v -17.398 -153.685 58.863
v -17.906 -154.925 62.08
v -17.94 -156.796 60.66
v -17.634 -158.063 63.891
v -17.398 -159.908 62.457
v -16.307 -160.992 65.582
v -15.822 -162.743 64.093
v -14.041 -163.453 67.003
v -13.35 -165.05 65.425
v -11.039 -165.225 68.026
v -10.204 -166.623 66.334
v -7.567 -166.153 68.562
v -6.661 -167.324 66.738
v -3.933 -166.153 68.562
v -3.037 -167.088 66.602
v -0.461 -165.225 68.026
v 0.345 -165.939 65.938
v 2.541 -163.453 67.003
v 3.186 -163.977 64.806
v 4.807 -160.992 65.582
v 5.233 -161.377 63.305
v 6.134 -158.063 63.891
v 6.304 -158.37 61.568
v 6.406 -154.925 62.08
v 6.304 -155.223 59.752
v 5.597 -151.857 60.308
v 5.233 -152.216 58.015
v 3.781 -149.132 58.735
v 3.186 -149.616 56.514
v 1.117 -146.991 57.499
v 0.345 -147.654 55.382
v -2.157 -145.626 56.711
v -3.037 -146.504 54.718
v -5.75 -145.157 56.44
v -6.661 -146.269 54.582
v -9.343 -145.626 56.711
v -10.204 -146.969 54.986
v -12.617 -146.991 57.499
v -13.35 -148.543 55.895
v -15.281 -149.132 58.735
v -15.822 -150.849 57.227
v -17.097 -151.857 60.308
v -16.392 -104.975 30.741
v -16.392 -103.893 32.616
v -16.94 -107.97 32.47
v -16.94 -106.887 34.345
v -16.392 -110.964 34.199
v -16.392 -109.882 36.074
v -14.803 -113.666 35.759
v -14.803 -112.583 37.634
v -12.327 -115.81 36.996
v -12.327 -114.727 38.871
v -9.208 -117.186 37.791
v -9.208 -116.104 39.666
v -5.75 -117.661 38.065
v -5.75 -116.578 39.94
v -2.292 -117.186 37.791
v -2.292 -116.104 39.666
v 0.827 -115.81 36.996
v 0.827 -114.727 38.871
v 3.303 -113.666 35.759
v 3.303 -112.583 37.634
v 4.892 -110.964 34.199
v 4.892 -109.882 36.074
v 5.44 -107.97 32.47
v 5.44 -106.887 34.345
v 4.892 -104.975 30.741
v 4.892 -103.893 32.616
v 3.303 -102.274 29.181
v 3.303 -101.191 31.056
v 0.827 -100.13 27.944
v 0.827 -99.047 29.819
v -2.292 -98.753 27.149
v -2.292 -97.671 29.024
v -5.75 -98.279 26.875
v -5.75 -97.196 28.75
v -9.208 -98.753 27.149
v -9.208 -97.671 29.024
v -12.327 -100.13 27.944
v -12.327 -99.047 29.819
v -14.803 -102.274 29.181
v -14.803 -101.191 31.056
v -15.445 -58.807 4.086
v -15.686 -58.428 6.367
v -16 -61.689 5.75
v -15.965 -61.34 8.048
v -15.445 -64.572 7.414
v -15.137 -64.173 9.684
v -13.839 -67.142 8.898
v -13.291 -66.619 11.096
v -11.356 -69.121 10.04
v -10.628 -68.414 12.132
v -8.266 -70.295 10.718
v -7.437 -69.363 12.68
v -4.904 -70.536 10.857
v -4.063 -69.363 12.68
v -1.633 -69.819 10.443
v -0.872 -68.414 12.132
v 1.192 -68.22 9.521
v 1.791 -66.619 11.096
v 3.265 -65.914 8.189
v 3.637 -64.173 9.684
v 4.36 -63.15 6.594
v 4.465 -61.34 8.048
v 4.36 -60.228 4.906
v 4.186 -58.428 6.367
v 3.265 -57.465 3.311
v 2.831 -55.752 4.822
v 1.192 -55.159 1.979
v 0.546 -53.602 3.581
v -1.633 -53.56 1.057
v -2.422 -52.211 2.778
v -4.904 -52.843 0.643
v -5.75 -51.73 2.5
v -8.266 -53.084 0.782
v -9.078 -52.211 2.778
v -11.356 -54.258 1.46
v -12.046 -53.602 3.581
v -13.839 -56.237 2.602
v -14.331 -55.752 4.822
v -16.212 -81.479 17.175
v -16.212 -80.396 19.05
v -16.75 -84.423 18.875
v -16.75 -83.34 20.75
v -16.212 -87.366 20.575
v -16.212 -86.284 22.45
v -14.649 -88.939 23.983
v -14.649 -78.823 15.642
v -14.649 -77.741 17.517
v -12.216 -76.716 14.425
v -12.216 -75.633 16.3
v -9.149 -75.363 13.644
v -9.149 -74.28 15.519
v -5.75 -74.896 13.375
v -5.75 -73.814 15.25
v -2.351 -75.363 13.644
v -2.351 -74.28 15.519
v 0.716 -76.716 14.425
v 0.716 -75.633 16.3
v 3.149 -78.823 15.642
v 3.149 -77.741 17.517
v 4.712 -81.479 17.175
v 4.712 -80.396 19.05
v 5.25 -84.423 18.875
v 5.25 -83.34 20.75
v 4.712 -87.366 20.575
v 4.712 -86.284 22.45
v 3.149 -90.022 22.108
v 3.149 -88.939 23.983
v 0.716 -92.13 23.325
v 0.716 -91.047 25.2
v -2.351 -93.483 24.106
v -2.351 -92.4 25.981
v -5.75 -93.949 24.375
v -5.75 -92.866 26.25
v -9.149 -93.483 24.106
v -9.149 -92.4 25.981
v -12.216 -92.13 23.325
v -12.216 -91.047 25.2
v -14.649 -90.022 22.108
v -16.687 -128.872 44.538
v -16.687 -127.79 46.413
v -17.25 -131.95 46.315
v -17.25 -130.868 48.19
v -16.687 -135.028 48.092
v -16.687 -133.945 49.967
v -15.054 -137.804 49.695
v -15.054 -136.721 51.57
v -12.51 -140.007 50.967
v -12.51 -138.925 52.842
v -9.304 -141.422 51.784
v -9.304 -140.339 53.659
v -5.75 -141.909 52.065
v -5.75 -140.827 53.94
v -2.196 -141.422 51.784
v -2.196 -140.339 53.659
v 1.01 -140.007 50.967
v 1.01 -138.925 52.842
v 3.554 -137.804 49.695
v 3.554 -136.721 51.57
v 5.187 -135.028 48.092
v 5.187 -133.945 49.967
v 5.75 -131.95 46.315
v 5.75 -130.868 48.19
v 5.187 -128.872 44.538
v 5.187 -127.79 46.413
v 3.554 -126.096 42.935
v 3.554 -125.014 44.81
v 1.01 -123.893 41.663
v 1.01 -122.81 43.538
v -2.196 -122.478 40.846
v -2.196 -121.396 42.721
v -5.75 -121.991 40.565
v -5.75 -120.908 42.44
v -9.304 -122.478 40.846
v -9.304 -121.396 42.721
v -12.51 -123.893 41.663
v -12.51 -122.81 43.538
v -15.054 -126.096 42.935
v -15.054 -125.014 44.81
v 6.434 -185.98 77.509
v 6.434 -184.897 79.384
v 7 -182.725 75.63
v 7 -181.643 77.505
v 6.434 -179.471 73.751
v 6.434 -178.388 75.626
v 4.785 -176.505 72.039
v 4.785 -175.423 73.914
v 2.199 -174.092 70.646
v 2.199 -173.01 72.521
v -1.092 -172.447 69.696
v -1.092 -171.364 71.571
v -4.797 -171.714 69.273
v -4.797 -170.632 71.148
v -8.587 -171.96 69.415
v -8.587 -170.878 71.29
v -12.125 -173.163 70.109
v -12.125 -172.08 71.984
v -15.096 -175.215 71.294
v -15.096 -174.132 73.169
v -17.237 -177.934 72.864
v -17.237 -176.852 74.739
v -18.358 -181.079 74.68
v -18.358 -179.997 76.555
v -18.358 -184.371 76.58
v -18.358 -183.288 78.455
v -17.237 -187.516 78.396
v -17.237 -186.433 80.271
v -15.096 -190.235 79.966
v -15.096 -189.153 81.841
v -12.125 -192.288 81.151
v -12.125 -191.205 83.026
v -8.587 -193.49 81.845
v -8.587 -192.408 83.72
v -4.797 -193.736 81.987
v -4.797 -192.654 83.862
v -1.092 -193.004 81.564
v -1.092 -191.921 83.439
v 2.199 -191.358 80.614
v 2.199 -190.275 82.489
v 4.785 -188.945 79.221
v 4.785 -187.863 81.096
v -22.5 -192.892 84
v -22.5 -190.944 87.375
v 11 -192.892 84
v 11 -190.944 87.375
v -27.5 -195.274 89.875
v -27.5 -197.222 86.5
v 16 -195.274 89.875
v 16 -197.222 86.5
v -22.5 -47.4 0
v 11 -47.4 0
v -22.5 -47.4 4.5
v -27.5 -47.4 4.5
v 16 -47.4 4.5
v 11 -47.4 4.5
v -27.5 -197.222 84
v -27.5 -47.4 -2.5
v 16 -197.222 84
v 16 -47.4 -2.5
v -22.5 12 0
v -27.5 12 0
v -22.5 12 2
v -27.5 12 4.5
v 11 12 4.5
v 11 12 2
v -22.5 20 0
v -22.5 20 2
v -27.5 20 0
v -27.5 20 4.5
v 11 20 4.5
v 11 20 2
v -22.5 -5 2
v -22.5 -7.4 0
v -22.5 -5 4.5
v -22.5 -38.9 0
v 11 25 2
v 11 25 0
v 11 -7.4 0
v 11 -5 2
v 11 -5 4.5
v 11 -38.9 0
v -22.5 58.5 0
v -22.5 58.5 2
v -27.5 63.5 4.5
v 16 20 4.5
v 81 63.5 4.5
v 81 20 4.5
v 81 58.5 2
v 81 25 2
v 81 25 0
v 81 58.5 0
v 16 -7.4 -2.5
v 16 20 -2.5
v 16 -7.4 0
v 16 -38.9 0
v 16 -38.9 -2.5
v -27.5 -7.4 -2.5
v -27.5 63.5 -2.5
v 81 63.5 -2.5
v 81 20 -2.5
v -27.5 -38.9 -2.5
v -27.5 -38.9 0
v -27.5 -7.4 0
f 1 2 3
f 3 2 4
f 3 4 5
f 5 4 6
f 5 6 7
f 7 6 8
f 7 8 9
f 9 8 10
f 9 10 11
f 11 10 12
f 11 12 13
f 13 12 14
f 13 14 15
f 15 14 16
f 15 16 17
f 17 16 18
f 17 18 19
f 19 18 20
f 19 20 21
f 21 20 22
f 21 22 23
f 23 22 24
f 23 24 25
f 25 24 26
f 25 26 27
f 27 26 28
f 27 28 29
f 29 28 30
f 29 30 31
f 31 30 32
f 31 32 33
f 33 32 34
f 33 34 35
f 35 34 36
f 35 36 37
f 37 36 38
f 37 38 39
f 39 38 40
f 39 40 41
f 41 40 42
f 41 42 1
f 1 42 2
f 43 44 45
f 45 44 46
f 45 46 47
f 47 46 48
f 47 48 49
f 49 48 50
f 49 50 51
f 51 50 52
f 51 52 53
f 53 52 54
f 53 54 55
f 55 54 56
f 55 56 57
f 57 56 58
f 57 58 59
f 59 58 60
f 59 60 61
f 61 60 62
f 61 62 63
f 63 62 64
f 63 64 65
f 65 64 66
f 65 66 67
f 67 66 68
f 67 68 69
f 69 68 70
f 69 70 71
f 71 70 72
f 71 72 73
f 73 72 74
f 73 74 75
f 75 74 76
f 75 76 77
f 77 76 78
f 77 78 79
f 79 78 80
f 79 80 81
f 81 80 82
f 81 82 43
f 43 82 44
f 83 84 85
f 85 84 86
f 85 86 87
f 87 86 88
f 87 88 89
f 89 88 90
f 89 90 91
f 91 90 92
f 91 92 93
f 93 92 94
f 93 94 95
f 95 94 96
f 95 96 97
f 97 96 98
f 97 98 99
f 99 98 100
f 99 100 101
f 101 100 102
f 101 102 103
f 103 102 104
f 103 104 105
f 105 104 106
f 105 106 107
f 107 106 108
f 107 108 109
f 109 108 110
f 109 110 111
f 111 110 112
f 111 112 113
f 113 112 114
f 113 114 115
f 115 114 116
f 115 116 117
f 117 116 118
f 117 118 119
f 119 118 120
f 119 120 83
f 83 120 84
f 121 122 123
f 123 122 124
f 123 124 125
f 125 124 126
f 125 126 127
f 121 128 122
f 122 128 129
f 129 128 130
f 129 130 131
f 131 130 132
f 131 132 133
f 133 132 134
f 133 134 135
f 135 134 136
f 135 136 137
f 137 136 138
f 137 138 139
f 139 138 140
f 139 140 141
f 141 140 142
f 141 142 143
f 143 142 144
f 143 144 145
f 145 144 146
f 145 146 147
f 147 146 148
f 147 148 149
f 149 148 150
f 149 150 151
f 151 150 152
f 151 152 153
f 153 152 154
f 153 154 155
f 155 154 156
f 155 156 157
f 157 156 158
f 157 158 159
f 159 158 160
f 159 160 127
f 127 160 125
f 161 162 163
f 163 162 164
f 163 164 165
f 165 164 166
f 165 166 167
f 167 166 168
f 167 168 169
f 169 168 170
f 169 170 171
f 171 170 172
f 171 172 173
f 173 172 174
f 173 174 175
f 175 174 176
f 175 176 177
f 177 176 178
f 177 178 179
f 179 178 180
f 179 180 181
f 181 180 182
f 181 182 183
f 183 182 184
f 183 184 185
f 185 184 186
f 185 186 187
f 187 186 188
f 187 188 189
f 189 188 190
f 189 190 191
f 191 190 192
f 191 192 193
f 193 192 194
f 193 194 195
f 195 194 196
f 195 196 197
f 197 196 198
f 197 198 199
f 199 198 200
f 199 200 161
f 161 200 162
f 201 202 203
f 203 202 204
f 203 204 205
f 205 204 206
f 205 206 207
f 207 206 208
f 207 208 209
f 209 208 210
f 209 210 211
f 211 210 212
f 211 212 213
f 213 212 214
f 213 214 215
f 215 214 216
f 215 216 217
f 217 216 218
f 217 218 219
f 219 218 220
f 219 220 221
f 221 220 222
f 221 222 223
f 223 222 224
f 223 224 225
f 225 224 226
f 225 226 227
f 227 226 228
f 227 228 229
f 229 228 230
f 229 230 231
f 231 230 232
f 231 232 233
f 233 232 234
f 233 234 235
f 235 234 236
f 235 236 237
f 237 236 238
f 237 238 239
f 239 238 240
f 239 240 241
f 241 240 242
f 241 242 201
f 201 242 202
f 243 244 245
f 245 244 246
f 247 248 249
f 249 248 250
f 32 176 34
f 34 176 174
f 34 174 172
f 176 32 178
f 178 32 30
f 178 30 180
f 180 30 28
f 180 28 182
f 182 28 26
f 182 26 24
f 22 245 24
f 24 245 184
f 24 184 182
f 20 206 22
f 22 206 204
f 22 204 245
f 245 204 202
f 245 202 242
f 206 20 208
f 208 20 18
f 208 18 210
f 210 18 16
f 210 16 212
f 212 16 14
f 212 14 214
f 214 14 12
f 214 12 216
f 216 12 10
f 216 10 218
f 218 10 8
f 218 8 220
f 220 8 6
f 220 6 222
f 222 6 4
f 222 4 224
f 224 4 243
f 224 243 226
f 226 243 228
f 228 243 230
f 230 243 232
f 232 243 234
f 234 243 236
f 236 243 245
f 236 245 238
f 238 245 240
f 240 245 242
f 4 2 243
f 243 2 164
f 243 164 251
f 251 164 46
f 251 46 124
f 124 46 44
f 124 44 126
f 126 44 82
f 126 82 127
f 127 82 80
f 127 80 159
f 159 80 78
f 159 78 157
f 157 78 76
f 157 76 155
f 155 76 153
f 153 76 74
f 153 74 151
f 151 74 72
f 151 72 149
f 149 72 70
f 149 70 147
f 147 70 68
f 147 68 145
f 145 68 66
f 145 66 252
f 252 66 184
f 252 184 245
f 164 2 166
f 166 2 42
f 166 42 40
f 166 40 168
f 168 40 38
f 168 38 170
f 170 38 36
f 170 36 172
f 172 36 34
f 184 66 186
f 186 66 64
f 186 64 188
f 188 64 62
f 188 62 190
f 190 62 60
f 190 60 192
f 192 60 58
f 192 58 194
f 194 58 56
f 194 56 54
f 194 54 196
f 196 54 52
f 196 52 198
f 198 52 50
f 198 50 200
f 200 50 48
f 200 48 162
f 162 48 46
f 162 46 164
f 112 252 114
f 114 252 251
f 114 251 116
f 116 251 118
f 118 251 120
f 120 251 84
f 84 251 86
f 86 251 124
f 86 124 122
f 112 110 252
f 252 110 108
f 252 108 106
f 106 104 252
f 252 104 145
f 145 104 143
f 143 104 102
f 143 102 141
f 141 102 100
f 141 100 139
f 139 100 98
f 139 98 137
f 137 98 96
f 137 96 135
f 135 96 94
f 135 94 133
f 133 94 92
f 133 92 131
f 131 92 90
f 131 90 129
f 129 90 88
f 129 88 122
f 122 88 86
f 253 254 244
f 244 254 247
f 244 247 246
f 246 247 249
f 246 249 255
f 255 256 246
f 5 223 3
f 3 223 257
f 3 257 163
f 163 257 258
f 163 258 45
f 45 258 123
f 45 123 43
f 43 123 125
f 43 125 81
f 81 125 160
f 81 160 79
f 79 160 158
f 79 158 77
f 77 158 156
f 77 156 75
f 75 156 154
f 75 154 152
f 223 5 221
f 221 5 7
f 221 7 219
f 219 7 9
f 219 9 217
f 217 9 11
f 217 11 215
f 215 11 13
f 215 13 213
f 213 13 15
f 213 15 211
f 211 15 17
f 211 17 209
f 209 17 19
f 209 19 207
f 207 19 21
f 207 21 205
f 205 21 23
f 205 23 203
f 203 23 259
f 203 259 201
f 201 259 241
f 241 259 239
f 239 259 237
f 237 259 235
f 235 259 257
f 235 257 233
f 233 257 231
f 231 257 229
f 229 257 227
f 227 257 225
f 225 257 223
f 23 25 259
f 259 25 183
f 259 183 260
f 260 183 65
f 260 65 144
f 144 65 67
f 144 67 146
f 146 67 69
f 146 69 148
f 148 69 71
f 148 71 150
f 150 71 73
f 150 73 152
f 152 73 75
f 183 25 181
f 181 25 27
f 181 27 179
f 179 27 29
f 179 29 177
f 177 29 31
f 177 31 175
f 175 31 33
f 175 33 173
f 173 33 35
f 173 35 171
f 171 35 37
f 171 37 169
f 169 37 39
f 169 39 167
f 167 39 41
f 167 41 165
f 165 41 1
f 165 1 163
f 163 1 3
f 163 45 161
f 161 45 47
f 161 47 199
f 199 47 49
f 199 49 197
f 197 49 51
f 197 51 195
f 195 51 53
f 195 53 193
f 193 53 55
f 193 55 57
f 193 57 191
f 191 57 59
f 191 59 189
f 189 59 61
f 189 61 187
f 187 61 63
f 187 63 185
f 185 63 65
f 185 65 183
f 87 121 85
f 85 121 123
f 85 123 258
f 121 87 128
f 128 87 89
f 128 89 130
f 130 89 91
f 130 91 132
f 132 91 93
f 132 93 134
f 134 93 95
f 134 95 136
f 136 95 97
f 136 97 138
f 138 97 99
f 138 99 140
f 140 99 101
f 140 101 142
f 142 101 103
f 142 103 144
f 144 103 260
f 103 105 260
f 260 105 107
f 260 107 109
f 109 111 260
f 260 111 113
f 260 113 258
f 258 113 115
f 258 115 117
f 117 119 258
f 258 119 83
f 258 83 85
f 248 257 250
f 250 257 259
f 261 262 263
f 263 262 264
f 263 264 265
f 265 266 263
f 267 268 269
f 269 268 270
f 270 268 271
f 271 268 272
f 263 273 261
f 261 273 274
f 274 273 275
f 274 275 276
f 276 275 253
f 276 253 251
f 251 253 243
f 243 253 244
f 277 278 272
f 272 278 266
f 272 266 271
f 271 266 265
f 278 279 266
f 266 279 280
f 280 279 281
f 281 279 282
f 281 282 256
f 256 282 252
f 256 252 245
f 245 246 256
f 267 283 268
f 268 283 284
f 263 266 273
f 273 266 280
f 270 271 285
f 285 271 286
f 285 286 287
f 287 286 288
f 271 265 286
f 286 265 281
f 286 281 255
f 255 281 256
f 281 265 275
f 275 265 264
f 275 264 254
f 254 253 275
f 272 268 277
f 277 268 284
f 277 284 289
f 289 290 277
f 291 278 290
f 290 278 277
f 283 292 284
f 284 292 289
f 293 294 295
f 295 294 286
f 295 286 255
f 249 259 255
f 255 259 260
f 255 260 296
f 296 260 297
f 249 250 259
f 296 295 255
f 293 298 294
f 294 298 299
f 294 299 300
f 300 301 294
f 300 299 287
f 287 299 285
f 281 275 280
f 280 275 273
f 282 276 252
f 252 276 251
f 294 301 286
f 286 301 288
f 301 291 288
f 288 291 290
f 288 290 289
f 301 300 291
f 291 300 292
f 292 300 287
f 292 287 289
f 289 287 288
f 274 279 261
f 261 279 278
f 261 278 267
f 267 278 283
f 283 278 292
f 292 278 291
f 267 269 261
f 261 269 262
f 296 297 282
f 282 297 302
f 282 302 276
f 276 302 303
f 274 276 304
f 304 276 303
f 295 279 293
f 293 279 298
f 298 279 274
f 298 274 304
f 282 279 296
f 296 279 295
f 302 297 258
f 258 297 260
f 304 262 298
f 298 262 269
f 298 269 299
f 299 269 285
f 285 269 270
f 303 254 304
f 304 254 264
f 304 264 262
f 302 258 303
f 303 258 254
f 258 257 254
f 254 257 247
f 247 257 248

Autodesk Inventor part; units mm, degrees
ref_plane "YZ Plane" through (0, 0, 0) normal (1, 0, 0) x (0, 1, 0)
ref_plane "XZ Plane" through (0, 0, 0) normal (0, 1, 0) x (-1, 0, 0)
sketch "Boceto1" plane through (0, 0, 0) normal (0, 0, 1) x (1, 0, 0)
  line L0 (81, 20) -> (81, 63.5)
  line L1 (-27.5, 63.5) -> (-27.5, -5)
  line L2 (-27.5, -5) -> (16, -5)
  line L3 (16, -5) -> (16, 20)
  line L4 (11, 25) -> (11, -5)
  line L5 (-22.5, 58.5) -> (-22.5, -5)
  line L6 (11, 25) -> (81, 25)
  line L7 (-27.5, 63.5) -> (81, 63.5)
  line L8 (-22.5, 58.5) -> (81, 58.5)
  line L9 (16, 20) -> (81, 20)
  point P0 (0, 0)
  dimension "d7" = 5
  dimension "d68" = 5
  dimension "d69" = 33.5
  dimension "d74" = 5
  dimension "d75" = 33.5
  dimension "d76" = 5
  dimension "d77" = 70
  dimension "d111" = 30
extrude "Extrusión1" add sketch "Boceto1" against normal blind 2.5
extrude "Extrusión2" add sketch "Boceto1" along normal blind 1 contours L9 L3 L2 L4 L6 L0 | L8 L5 L2 L1 L7 L0
ref_plane "Plano de trabajo3" through (29.25, 58.5, 1) normal (0, 0, 1) x (1, 0, 0)
mirror "Simetría3" about plane through (29.25, 58.5, 1) normal (0, 0, 1) of "Extrusión2", "Extrusión1"
sketch "Boceto6" plane through (-27.5, 63.5, 4.5) normal (0, 0, 1) x (1, 0, 0)
  line L0 (108.5, -43.5) -> (43.5, -43.5) projected
  line L1 (0, -68.5) -> (0, 0) projected
  line L2 (0, -43.5) -> (0, -51.5)
  line L3 (43.5, -43.5) -> (43.5, -68.5) projected
  line L4 (0, -43.5) -> (38.5, -43.5)
  line L5 (38.5, -68.5) -> (38.5, -38.5) projected
  line L6 (0, -51.5) -> (38.5, -51.5)
  line L7 (38.5, -43.5) -> (38.5, -51.5)
  point P0 (27.5, -63.5)
  point P1 (43.5, -51.5)
  dimension "d78" = 8
extrude "Extrusión11" cut sketch "Boceto6" against normal blind 4.5
sketch "Boceto7" plane through (-27.5, -5, -2.5) normal (-1, 0, 0) x (0, 0, 1)
  line L0 (0, 0) -> (0, 68.5) projected
  line L1 (0, 0) -> (0, -42.4)
  line L2 (0, 0) -> (7, 0) projected
  line L3 (0, 0) -> (7, 0)
  line L4 (7, 0) -> (7, -42.4)
  line L5 (0, -42.4) -> (86.5, -192.2224)
  line L6 (86.5, -192.2224) -> (89, -192.2224)
  line L7 (89, -192.2224) -> (92.375, -190.2738)
  line L8 (2.5, 0) -> (2.5, -42.4)
  line L9 (0, 0) -> (7, 0) projected
  line L10 (0, 0) -> (2.5, 0)
  line L11 (86.5, -192.2224) -> (89, -192.2224)
  line L12 (89, -192.2224) -> (92.375, -190.2738)
  line L13 (2.5, -42.4) -> (89, -192.2224)
  line L14 (0, -42.4) -> (-1.0904, -42.4)
  line L15 (7, -42.4) -> (92.375, -190.2738)
  line L16 (86.5, -187.8923) -> (89.875, -185.9437)
  point P0 (2.5, 5)
  point P1 (4.5, 0)
  point P2 (-0.5452, -42.4)
  dimension "d81" = 42.4
  dimension "d82" = 173
  dimension "d88" = 120
  dimension "d108" = 5
ref_plane "Plano de trabajo4" through (-5.75, -5, -2.5) normal (1, 0, 0) x (0, 0, -1)
extrude "Extrusión12" add sketch "Boceto7" against normal blind 21.75 contours L2 L8 L13 L6 L5 L1
extrude "Extrusión13" add sketch "Boceto7" against normal blind 5 contours L2 L4 L15 L16 L13 L8
extrude "Extrusión14" add sketch "Boceto7" against normal blind 21.75 contours L13 L16 L15 L7
mirror "Simetría4" about plane through (-5.75, -5, -2.5) normal (1, 0, 0) of "Extrusión12", "Extrusión13", "Extrusión14"
sketch "Boceto8" plane through (-22.5, -47.4, 0) normal (0, 0.5, 0.866) x (1, 0, 0)
  line L0 (0, 0) -> (33.5, 0) projected
  line L1 (16.75, 0) -> (16.75, -5)
  circle A0 centre (16.75, -15.25) radius 10.25
  line L2 (16.75, -25.5) -> (16.75, -30.5)
  circle A1 centre (16.75, -41.5) radius 11
  line L3 (16.75, -52.5) -> (16.75, -57.5)
  circle A2 centre (16.75, -68.69) radius 11.19
  line L4 (16.75, -79.88) -> (16.75, -84.88)
  circle A3 centre (16.75, -96.38) radius 11.5
  line L5 (16.75, -107.88) -> (16.75, -112.88)
  circle A4 centre (16.75, -125.07) radius 12.19
  line L6 (16.75, -137.26) -> (16.75, -142.26)
  circle A5 centre (16.75, -155.01) radius 12.75
  point P0 (22.5, 41.0496)
  dimension "d105" = 25.5
  dimension "d94" = 5
  dimension "d95" = 20.5
  dimension "d96" = 5
  dimension "d97" = 5
  dimension "d98" = 5
  dimension "d99" = 5
  dimension "d100" = 5
  dimension "d101" = 22
  dimension "d102" = 22.38
  dimension "d103" = 23
  dimension "d104" = 24.38
extrude "Extrusión15" cut sketch "Boceto8" against normal blind 21.75
sketch "Boceto9" plane through (-27.5, 63.5, -2.5) normal (-1, 0, 0) x (0, 0, 1)
  line L0 (2.5, -51.5) -> (2.5, -110.9) projected
  line L1 (0, 0) -> (0, -110.9) projected
  line L2 (0, -110.9) -> (2.5, -110.9)
  line L3 (2.5, -110.9) -> (2.5, -70.9)
  line L4 (2.5, -70.9) -> (0, -70.9)
  line L5 (0, -70.9) -> (0, -110.9)
  line L6 (0, -43.5) -> (0, -110.9) projected
  line L7 (0, -102.4) -> (2.5, -102.4)
  point P0 (2.5, -63.5)
  point P1 (7, -110.9)
  dimension "d109" = 2.5
  dimension "d110" = 40
  dimension "d112" = 31.5
extrude "Extrusión16" cut sketch "Boceto9" against normal through all contours L0 L7 L1 L4
equation "\"d105\" = UnSol"
equation "\"d94\" = razon"
equation "\"d95\" = diezcen"
equation "\"d96\" = razon"
equation "\"d97\" = razon"
equation "\"d98\" = razon"
equation "\"d99\" = razon"
equation "\"d100\" = razon"
equation "\"d101\" = cincuentacen"
equation "\"d102\" = dossol"
equation "\"d103\" = veintecen"
equation "\"d104\" = cincosol"
equation "\"UnSol\" = 25.5"
equation "\"diezcen\" = 20.5"
equation "\"veintecen\" = 23"
equation "\"cincuentacen\" = 22"
equation "\"dossol\" = 22.38"
equation "\"cincosol\" = 24.38"
equation "\"razon\" = 5"
properties part number "Maquinita"
